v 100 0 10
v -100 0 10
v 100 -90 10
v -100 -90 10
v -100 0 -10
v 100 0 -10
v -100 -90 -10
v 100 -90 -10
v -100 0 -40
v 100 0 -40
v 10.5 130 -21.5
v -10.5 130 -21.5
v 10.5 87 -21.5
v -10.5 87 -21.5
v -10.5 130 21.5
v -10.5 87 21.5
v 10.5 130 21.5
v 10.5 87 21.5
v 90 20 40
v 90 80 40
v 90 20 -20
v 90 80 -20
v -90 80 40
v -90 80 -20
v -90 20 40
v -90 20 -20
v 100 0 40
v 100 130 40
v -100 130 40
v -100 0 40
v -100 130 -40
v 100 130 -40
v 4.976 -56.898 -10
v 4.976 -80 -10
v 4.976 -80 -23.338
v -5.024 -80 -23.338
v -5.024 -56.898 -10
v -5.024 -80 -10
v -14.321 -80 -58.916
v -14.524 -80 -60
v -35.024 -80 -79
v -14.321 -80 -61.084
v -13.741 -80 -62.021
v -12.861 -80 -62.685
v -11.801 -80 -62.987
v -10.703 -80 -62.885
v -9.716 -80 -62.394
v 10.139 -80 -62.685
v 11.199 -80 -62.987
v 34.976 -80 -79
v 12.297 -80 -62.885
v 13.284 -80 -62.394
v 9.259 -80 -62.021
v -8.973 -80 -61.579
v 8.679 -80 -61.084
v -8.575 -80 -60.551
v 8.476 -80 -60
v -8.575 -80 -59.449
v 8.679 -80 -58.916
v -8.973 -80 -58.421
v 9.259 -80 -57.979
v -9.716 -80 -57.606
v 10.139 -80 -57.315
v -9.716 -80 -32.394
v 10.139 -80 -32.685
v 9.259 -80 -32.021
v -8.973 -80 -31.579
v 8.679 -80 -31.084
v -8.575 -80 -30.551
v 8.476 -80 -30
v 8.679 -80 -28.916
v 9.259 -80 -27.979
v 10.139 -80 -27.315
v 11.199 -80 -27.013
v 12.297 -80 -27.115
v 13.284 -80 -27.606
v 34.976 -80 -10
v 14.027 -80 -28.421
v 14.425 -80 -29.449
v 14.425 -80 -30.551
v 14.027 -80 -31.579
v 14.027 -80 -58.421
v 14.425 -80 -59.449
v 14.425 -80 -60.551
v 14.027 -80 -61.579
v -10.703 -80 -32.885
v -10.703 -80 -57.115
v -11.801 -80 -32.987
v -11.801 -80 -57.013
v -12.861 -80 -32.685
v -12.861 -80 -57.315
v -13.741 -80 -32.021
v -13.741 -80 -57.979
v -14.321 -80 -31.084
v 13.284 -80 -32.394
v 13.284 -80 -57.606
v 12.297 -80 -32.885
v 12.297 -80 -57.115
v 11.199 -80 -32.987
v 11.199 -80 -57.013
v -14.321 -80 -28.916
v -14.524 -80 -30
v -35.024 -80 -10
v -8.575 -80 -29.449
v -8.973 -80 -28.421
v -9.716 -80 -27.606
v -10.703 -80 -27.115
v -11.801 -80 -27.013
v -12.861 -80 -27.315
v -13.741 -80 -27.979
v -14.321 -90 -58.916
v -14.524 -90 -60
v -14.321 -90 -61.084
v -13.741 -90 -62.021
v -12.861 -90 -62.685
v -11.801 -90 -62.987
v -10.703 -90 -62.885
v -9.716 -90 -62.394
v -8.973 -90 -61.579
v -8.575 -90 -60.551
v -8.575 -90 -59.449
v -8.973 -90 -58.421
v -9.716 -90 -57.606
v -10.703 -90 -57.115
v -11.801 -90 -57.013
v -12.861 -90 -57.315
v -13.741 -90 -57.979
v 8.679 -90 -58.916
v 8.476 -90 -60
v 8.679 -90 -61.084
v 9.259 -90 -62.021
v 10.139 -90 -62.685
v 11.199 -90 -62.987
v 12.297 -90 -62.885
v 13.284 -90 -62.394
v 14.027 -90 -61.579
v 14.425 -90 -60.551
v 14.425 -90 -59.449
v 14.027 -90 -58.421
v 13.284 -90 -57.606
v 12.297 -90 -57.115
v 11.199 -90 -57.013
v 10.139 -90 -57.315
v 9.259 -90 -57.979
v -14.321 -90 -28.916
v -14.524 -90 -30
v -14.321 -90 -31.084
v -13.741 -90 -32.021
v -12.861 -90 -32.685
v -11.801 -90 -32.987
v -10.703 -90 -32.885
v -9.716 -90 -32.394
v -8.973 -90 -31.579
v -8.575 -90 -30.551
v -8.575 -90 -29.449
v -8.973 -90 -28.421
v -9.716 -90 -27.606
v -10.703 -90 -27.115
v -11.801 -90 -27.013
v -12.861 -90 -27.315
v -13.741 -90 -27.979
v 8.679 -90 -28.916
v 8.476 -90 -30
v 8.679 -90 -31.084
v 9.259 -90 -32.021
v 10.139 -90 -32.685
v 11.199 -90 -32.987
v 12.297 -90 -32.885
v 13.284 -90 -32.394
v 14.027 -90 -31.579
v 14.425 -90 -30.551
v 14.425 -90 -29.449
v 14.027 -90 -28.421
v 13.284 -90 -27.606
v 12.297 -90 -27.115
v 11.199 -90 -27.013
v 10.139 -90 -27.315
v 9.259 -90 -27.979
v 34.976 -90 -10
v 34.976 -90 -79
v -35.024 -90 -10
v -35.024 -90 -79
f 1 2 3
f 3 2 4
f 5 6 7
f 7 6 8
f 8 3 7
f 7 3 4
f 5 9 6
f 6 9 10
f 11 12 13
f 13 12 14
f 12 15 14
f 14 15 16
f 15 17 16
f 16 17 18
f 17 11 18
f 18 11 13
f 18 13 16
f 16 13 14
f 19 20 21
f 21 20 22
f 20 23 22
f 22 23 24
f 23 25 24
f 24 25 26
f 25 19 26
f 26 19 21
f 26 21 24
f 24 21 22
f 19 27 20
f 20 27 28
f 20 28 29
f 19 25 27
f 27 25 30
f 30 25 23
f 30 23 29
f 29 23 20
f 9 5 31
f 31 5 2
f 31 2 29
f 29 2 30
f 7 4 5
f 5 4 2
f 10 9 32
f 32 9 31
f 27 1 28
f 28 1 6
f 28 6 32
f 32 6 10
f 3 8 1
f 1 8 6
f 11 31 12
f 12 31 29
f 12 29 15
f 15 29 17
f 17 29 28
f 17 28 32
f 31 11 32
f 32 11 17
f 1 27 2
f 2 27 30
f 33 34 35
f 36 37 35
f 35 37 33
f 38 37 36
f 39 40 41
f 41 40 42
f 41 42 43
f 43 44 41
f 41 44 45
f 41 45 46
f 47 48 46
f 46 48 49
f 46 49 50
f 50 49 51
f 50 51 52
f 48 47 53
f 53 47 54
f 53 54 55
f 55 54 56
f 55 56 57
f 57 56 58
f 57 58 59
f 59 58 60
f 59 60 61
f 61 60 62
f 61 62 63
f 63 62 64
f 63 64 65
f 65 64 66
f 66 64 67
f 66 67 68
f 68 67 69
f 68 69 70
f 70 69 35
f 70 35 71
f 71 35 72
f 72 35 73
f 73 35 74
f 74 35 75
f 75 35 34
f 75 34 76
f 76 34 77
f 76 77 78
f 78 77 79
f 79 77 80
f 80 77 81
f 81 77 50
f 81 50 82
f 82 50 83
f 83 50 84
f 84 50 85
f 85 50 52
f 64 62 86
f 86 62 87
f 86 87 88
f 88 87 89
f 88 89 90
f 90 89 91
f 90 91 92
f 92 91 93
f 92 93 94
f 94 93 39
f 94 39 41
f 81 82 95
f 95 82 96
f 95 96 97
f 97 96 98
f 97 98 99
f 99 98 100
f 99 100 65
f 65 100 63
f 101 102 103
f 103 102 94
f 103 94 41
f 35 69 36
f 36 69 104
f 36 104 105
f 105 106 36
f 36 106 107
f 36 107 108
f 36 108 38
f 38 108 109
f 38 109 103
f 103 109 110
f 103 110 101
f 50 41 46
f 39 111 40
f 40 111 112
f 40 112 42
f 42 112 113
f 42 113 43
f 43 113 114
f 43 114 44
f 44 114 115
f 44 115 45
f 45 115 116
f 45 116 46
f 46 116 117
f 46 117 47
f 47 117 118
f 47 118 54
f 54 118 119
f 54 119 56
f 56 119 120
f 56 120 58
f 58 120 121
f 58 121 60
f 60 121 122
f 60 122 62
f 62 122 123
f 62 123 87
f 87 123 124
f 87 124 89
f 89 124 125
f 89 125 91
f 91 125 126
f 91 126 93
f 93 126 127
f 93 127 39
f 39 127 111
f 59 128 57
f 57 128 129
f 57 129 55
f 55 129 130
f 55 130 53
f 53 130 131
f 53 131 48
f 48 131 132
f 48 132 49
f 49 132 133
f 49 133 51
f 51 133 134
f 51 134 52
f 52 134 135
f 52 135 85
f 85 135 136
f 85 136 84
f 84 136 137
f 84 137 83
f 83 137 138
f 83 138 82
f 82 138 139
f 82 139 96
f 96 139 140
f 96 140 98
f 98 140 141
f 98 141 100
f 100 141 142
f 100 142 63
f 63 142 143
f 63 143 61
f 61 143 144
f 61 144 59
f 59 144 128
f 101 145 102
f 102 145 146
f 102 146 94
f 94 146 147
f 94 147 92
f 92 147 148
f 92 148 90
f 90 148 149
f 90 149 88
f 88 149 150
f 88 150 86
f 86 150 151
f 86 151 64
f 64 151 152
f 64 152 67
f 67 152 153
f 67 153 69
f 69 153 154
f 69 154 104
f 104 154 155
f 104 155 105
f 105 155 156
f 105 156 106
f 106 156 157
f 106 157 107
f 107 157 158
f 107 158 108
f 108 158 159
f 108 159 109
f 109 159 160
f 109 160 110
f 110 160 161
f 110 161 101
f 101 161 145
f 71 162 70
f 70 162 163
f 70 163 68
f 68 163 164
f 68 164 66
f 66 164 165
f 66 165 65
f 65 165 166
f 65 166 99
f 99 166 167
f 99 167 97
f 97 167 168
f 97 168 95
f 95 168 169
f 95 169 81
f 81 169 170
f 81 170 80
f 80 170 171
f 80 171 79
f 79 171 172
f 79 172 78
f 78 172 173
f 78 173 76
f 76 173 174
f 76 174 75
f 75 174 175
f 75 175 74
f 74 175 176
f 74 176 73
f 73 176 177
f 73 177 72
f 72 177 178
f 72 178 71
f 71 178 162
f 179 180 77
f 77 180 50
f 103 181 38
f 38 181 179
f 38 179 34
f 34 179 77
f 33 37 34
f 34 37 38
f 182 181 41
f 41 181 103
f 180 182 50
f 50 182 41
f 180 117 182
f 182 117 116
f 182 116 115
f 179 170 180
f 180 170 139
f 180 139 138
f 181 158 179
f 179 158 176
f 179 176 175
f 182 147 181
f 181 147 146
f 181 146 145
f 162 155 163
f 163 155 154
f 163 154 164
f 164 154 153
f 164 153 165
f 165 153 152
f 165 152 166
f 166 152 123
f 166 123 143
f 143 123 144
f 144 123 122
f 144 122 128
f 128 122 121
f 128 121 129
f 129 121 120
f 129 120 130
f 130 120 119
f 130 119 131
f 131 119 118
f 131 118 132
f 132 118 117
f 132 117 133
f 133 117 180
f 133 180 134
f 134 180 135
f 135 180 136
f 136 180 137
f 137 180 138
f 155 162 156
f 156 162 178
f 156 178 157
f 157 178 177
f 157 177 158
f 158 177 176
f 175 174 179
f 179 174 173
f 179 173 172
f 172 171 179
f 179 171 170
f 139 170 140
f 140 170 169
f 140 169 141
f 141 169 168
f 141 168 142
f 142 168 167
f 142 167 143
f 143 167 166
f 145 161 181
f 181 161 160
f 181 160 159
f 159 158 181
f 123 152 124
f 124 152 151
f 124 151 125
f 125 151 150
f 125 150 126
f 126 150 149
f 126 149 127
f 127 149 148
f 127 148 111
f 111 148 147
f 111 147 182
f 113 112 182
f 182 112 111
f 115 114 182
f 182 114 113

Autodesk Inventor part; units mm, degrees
ref_plane "YZ Plane" through (0, 0, 0) normal (1, 0, 0) x (0, 1, 0)
sketch "Boceto1" plane through (0, 0, 0) normal (0, 1, 0) x (-1, 0, 0)
  line L0 (100, 40) -> (-100, 40)
  line L1 (-100, 40) -> (-100, -40)
  line L2 (-100, -40) -> (100, -40)
  line L3 (100, -40) -> (100, 40)
  line L4 (100, 40) -> (-100, -40) construction
  line L5 (-100, 40) -> (100, -40) construction
  point P0 (0, 0)
  dimension "d0" = 200
  dimension "d1" = 80
extrude "Extrusión1" add sketch "Boceto1" along normal blind 130
sketch "Boceto2" plane through (-100, 0, 40) normal (0, 0, 1) x (1, 0, 0)
  line L0 (10, 80) -> (190, 80)
  line L1 (190, 80) -> (190, 20)
  line L2 (190, 20) -> (10, 20)
  line L3 (10, 20) -> (10, 80)
  line L4 (10, 80) -> (190, 20) construction
  line L5 (190, 80) -> (10, 20) construction
  line L6 (0, 0) -> (200, 0) projected
  line L7 (0, 0) -> (0, 130) projected
  point P0 (100, 0)
  point P1 (100, 50)
  dimension "d4" = 180
  dimension "d5" = 60
  dimension "d6" = 20
  dimension "d52" = 10
extrude "Extrusión2" cut sketch "Boceto2" against normal blind 60
sketch "Boceto3" plane through (0, 130, 0) normal (0, 1, 0) x (1, 0, 0)
  line L0 (-10.5, -21.5) -> (10.5, -21.5)
  line L1 (10.5, -21.5) -> (10.5, 21.5)
  line L2 (10.5, 21.5) -> (-10.5, 21.5)
  line L3 (-10.5, 21.5) -> (-10.5, -21.5)
  line L4 (-10.5, -21.5) -> (10.5, 21.5) construction
  line L5 (10.5, -21.5) -> (-10.5, 21.5) construction
  line L6 (100, -40) -> (100, 40) projected
  point P0 (0, 0)
  point P1 (0, 0)
  dimension "d9" = 21
  dimension "d10" = 43
  dimension "d53" = 89.5
extrude "Extrusión3" cut sketch "Boceto3" against normal blind 43
sketch "Boceto4" plane through (0, 0, 0) normal (0, -1, 0) x (1, 0, 0)
  line L0 (100, 40) -> (100, -40) projected
  line L1 (-100, 10) -> (100, 10)
  line L2 (100, 10) -> (100, -10)
  line L3 (100, -10) -> (-100, -10)
  line L4 (-100, -10) -> (-100, 10)
  line L5 (-100, 10) -> (100, -10) construction
  line L6 (100, 10) -> (-100, -10) construction
  point P0 (0, 0)
  dimension "d13" = 20
extrude "Extrusión4" add sketch "Boceto4" along normal blind 90
ref_plane "Plano de trabajo1" through (0, -90, 0) normal (0, 1, 0) x (-1, 0, 0)
sketch "Boceto7" plane through (0, -90, 0) normal (0, 1, 0) x (-1, 0, 0)
  circle A0 centre (11.5239, -60) radius 3
  circle A1 centre (-11.4761, -60) radius 3
  line L0 (105, 10) -> (-105, 10)
  line L1 (105.0239, -10) -> (-104.9761, -10)
  line L2 (105.0239, -10) -> (-104.9761, -10)
  circle A2 centre (11.5239, -30) radius 3
  circle A3 centre (-11.4761, -30) radius 3
  line L3 (11.5239, -60) -> (-11.4761, -30)
  line L4 (11.5239, -30) -> (-11.4761, -60)
  line L5 (105, 10) -> (-105, 10)
  line L6 (-105, 10) -> (-95.8154, 10)
  line L7 (0.0239, -45) -> (-34.9761, -45)
  line L8 (0.0239, -45) -> (35.0239, -45)
  line L9 (35.0239, -45) -> (35.0239, -10)
  line L10 (-100, -10) -> (100, -10)
  line L11 (35.0239, -10) -> (-34.9761, -10)
  line L12 (-34.9761, -10) -> (-34.9761, -79)
  line L13 (-34.9761, -79) -> (35.0239, -79)
  line L14 (35.0239, -79) -> (35.0239, -10)
  line L15 (-100, -10) -> (100, -10) projected
  line L16 (-40.6213, -10) -> (-84.6707, -10)
  point P0 (0, 0)
  point P1 (0, 0)
  point P2 (0.0478, -10)
  dimension "d28" = 20
  dimension "d29" = 20
  dimension "d30" = 30
  dimension "d31" = 30
  dimension "d32" = 20
  dimension "d33" = 35
  dimension "d34" = 35
  dimension "d35" = 69
extrude "Extrusión6" add sketch "Boceto7" along normal blind 10 separate body
ref_plane "Plano de trabajo3" through (-0.0239, -90, -79) normal (-1, 0, 0) x (0, 0, 1)
sketch "Boceto10" plane through (-0.0239, -90, -79) normal (-1, 0, 0) x (0, 0, 1)
  line L0 (57.1622, 10) -> (81.4718, 10) construction
  line L1 (69, 33.1018) -> (55.6622, 10)
  line L2 (69, 33.1018) -> (69, 10)
  line L3 (69, 90) -> (69, 0) projected
  line L4 (0, 10) -> (69, 10) projected
  line L5 (69, 10) -> (55.6622, 10)
  point P0 (79, 90)
  dimension "d45" = 1.5
extrude "Extrusión7" add sketch "Boceto10" along normal mid plane 10 bodies 2
properties part number "front_support"
